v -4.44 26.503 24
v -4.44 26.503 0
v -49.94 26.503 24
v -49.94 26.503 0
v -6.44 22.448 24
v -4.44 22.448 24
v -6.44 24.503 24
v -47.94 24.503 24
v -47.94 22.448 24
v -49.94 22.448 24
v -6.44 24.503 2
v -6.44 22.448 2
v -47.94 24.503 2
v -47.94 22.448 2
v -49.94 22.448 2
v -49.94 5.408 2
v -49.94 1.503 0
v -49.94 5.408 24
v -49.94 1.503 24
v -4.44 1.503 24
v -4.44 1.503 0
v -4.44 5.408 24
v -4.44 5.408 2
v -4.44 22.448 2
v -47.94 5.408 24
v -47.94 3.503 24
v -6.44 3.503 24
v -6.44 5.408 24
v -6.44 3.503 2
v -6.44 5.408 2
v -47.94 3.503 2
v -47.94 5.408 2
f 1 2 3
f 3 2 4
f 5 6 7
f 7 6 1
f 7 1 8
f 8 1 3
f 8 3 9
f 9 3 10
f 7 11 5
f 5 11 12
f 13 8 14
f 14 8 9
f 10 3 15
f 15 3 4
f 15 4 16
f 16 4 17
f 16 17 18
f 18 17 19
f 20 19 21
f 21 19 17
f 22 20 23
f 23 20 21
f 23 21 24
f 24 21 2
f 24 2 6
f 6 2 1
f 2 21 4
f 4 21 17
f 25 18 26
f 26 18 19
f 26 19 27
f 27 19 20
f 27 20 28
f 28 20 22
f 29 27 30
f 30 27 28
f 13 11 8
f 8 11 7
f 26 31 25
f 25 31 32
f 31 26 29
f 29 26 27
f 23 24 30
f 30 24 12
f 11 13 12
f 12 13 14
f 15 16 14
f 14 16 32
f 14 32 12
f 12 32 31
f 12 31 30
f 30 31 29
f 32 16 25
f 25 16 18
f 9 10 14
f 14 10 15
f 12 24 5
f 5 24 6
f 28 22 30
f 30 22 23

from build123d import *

# Parameters (mm, degrees)
SALIENTE_EXTRUIR1_DEPTH = 2
SALIENTE_EXTRUIR2_DEPTH = 24
CROQUIS4_W              = 26.838471133
CROQUIS4_H              = 17.040828642
CORTAR_EXTRUIR1_DEPTH   = 70.1
SALIENTE_EXTRUIR3_DEPTH = 2
SALIENTE_EXTRUIR4_DEPTH = 2
CROQUIS7_W              = 45.5
CROQUIS7_H              = 2
SALIENTE_EXTRUIR5_DEPTH = 8
SALIENTE_EXTRUIR6_DEPTH = 6
CROQUIS9_W              = 76.962380363
CROQUIS9_H              = 58.957858246
CORTAR_EXTRUIR2_DEPTH   = 28


with BuildPart() as part:
    # Croquis1 → Saliente-Extruir1 (new body)
    with BuildSketch(Plane.XY):
        Polygon((-48.939551095, 26.503456625), (-8.439551095, 26.503456625), (-4.439551095, 26.503456625), (-4.439551095, 1.503456625), (-8.439551095, 1.503456625), (-49.939551095, 1.503456625), (-49.939551095, 5.503456625), (-49.939551095, 26.503456625), align=None)
    extrude(amount=SALIENTE_EXTRUIR1_DEPTH)

    # Croquis3 → Saliente-Extruir2 (add)
    with BuildSketch(Plane.XY):
        Polygon((-48.939551095, 26.503456625), (-8.439551095, 26.503456625), (-4.439551095, 26.503456625), (-4.439551095, 1.503456625), (-49.939551095, 1.503456625), (-49.939551095, 26.503456625), align=None)
        Polygon((-10.439551095, 3.503456625), (-47.939551095, 3.503456625), (-47.939551095, 5.503456625), (-47.939551095, 24.503456625), (-10.439551095, 24.503456625), (-6.439551095, 24.503456625), (-6.439551095, 3.503456625), align=None, mode=Mode.SUBTRACT)
    extrude(amount=SALIENTE_EXTRUIR2_DEPTH)

    # Croquis4 → Cortar-Extruir1 (cut)
    with BuildSketch(Plane(origin=(0, 0, 0), x_dir=(0, 0, -1), z_dir=(1, 0, 0))):
        with Locations((-15.419235567, 13.92807924)):
            Rectangle(CROQUIS4_W, CROQUIS4_H)
    extrude(amount=-CORTAR_EXTRUIR1_DEPTH, mode=Mode.SUBTRACT)

    # Croquis5 → Saliente-Extruir3 (add)
    with BuildSketch(Plane(origin=(0, 26.503456625, 0), x_dir=(1, 0, 0), z_dir=(0, 1, 0))):
        Polygon((-49.939551095, -20.607192887), (-4.439551095, -20.607192887), (-4.439551095, -36.1), (-8.439551095, -36.1), (-48.939551095, -36.1), (-49.939551095, -36.1), align=None)
    extrude(amount=-SALIENTE_EXTRUIR3_DEPTH)

    # Croquis6 → Saliente-Extruir4 (add)
    with BuildSketch(Plane.XY.offset(36.1)):
        Polygon((-4.439551095, 24.503456625), (-49.939551095, 24.503456625), (-49.939551095, 33.503456625), (-48.939551095, 33.503456625), (-8.439551095, 33.503456625), (-4.439551095, 33.503456625), align=None)
    extrude(amount=-SALIENTE_EXTRUIR4_DEPTH)

    # Croquis7 → Saliente-Extruir5 (add)
    with BuildSketch(Plane.XY.offset(36.1)):
        with Locations((-27.189551095, 32.503456625)):
            Rectangle(CROQUIS7_W, CROQUIS7_H)
    extrude(amount=-SALIENTE_EXTRUIR5_DEPTH)

    # Croquis8 → Saliente-Extruir6 (add)
    with BuildSketch(Plane.XY.offset(36.1)):
        Polygon((-49.939551095, 29.503456625), (-49.939551095, 26.503456625), (-49.715027183, 26.503456625), (-8.439551095, 26.503456625), (-4.439551095, 26.503456625), (-4.439551095, 29.503456625), (-8.439551095, 29.503456625), (-49.715027183, 29.503456625), align=None)
    extrude(amount=-SALIENTE_EXTRUIR6_DEPTH)

    # Croquis9 → Cortar-Extruir2 (cut)
    with BuildSketch(Plane.XY.offset(24)):
        with Locations((-25.38769132, 23.863692023)):
            Rectangle(CROQUIS9_W, CROQUIS9_H)
    extrude(amount=CORTAR_EXTRUIR2_DEPTH, mode=Mode.SUBTRACT)


solid = part.part
